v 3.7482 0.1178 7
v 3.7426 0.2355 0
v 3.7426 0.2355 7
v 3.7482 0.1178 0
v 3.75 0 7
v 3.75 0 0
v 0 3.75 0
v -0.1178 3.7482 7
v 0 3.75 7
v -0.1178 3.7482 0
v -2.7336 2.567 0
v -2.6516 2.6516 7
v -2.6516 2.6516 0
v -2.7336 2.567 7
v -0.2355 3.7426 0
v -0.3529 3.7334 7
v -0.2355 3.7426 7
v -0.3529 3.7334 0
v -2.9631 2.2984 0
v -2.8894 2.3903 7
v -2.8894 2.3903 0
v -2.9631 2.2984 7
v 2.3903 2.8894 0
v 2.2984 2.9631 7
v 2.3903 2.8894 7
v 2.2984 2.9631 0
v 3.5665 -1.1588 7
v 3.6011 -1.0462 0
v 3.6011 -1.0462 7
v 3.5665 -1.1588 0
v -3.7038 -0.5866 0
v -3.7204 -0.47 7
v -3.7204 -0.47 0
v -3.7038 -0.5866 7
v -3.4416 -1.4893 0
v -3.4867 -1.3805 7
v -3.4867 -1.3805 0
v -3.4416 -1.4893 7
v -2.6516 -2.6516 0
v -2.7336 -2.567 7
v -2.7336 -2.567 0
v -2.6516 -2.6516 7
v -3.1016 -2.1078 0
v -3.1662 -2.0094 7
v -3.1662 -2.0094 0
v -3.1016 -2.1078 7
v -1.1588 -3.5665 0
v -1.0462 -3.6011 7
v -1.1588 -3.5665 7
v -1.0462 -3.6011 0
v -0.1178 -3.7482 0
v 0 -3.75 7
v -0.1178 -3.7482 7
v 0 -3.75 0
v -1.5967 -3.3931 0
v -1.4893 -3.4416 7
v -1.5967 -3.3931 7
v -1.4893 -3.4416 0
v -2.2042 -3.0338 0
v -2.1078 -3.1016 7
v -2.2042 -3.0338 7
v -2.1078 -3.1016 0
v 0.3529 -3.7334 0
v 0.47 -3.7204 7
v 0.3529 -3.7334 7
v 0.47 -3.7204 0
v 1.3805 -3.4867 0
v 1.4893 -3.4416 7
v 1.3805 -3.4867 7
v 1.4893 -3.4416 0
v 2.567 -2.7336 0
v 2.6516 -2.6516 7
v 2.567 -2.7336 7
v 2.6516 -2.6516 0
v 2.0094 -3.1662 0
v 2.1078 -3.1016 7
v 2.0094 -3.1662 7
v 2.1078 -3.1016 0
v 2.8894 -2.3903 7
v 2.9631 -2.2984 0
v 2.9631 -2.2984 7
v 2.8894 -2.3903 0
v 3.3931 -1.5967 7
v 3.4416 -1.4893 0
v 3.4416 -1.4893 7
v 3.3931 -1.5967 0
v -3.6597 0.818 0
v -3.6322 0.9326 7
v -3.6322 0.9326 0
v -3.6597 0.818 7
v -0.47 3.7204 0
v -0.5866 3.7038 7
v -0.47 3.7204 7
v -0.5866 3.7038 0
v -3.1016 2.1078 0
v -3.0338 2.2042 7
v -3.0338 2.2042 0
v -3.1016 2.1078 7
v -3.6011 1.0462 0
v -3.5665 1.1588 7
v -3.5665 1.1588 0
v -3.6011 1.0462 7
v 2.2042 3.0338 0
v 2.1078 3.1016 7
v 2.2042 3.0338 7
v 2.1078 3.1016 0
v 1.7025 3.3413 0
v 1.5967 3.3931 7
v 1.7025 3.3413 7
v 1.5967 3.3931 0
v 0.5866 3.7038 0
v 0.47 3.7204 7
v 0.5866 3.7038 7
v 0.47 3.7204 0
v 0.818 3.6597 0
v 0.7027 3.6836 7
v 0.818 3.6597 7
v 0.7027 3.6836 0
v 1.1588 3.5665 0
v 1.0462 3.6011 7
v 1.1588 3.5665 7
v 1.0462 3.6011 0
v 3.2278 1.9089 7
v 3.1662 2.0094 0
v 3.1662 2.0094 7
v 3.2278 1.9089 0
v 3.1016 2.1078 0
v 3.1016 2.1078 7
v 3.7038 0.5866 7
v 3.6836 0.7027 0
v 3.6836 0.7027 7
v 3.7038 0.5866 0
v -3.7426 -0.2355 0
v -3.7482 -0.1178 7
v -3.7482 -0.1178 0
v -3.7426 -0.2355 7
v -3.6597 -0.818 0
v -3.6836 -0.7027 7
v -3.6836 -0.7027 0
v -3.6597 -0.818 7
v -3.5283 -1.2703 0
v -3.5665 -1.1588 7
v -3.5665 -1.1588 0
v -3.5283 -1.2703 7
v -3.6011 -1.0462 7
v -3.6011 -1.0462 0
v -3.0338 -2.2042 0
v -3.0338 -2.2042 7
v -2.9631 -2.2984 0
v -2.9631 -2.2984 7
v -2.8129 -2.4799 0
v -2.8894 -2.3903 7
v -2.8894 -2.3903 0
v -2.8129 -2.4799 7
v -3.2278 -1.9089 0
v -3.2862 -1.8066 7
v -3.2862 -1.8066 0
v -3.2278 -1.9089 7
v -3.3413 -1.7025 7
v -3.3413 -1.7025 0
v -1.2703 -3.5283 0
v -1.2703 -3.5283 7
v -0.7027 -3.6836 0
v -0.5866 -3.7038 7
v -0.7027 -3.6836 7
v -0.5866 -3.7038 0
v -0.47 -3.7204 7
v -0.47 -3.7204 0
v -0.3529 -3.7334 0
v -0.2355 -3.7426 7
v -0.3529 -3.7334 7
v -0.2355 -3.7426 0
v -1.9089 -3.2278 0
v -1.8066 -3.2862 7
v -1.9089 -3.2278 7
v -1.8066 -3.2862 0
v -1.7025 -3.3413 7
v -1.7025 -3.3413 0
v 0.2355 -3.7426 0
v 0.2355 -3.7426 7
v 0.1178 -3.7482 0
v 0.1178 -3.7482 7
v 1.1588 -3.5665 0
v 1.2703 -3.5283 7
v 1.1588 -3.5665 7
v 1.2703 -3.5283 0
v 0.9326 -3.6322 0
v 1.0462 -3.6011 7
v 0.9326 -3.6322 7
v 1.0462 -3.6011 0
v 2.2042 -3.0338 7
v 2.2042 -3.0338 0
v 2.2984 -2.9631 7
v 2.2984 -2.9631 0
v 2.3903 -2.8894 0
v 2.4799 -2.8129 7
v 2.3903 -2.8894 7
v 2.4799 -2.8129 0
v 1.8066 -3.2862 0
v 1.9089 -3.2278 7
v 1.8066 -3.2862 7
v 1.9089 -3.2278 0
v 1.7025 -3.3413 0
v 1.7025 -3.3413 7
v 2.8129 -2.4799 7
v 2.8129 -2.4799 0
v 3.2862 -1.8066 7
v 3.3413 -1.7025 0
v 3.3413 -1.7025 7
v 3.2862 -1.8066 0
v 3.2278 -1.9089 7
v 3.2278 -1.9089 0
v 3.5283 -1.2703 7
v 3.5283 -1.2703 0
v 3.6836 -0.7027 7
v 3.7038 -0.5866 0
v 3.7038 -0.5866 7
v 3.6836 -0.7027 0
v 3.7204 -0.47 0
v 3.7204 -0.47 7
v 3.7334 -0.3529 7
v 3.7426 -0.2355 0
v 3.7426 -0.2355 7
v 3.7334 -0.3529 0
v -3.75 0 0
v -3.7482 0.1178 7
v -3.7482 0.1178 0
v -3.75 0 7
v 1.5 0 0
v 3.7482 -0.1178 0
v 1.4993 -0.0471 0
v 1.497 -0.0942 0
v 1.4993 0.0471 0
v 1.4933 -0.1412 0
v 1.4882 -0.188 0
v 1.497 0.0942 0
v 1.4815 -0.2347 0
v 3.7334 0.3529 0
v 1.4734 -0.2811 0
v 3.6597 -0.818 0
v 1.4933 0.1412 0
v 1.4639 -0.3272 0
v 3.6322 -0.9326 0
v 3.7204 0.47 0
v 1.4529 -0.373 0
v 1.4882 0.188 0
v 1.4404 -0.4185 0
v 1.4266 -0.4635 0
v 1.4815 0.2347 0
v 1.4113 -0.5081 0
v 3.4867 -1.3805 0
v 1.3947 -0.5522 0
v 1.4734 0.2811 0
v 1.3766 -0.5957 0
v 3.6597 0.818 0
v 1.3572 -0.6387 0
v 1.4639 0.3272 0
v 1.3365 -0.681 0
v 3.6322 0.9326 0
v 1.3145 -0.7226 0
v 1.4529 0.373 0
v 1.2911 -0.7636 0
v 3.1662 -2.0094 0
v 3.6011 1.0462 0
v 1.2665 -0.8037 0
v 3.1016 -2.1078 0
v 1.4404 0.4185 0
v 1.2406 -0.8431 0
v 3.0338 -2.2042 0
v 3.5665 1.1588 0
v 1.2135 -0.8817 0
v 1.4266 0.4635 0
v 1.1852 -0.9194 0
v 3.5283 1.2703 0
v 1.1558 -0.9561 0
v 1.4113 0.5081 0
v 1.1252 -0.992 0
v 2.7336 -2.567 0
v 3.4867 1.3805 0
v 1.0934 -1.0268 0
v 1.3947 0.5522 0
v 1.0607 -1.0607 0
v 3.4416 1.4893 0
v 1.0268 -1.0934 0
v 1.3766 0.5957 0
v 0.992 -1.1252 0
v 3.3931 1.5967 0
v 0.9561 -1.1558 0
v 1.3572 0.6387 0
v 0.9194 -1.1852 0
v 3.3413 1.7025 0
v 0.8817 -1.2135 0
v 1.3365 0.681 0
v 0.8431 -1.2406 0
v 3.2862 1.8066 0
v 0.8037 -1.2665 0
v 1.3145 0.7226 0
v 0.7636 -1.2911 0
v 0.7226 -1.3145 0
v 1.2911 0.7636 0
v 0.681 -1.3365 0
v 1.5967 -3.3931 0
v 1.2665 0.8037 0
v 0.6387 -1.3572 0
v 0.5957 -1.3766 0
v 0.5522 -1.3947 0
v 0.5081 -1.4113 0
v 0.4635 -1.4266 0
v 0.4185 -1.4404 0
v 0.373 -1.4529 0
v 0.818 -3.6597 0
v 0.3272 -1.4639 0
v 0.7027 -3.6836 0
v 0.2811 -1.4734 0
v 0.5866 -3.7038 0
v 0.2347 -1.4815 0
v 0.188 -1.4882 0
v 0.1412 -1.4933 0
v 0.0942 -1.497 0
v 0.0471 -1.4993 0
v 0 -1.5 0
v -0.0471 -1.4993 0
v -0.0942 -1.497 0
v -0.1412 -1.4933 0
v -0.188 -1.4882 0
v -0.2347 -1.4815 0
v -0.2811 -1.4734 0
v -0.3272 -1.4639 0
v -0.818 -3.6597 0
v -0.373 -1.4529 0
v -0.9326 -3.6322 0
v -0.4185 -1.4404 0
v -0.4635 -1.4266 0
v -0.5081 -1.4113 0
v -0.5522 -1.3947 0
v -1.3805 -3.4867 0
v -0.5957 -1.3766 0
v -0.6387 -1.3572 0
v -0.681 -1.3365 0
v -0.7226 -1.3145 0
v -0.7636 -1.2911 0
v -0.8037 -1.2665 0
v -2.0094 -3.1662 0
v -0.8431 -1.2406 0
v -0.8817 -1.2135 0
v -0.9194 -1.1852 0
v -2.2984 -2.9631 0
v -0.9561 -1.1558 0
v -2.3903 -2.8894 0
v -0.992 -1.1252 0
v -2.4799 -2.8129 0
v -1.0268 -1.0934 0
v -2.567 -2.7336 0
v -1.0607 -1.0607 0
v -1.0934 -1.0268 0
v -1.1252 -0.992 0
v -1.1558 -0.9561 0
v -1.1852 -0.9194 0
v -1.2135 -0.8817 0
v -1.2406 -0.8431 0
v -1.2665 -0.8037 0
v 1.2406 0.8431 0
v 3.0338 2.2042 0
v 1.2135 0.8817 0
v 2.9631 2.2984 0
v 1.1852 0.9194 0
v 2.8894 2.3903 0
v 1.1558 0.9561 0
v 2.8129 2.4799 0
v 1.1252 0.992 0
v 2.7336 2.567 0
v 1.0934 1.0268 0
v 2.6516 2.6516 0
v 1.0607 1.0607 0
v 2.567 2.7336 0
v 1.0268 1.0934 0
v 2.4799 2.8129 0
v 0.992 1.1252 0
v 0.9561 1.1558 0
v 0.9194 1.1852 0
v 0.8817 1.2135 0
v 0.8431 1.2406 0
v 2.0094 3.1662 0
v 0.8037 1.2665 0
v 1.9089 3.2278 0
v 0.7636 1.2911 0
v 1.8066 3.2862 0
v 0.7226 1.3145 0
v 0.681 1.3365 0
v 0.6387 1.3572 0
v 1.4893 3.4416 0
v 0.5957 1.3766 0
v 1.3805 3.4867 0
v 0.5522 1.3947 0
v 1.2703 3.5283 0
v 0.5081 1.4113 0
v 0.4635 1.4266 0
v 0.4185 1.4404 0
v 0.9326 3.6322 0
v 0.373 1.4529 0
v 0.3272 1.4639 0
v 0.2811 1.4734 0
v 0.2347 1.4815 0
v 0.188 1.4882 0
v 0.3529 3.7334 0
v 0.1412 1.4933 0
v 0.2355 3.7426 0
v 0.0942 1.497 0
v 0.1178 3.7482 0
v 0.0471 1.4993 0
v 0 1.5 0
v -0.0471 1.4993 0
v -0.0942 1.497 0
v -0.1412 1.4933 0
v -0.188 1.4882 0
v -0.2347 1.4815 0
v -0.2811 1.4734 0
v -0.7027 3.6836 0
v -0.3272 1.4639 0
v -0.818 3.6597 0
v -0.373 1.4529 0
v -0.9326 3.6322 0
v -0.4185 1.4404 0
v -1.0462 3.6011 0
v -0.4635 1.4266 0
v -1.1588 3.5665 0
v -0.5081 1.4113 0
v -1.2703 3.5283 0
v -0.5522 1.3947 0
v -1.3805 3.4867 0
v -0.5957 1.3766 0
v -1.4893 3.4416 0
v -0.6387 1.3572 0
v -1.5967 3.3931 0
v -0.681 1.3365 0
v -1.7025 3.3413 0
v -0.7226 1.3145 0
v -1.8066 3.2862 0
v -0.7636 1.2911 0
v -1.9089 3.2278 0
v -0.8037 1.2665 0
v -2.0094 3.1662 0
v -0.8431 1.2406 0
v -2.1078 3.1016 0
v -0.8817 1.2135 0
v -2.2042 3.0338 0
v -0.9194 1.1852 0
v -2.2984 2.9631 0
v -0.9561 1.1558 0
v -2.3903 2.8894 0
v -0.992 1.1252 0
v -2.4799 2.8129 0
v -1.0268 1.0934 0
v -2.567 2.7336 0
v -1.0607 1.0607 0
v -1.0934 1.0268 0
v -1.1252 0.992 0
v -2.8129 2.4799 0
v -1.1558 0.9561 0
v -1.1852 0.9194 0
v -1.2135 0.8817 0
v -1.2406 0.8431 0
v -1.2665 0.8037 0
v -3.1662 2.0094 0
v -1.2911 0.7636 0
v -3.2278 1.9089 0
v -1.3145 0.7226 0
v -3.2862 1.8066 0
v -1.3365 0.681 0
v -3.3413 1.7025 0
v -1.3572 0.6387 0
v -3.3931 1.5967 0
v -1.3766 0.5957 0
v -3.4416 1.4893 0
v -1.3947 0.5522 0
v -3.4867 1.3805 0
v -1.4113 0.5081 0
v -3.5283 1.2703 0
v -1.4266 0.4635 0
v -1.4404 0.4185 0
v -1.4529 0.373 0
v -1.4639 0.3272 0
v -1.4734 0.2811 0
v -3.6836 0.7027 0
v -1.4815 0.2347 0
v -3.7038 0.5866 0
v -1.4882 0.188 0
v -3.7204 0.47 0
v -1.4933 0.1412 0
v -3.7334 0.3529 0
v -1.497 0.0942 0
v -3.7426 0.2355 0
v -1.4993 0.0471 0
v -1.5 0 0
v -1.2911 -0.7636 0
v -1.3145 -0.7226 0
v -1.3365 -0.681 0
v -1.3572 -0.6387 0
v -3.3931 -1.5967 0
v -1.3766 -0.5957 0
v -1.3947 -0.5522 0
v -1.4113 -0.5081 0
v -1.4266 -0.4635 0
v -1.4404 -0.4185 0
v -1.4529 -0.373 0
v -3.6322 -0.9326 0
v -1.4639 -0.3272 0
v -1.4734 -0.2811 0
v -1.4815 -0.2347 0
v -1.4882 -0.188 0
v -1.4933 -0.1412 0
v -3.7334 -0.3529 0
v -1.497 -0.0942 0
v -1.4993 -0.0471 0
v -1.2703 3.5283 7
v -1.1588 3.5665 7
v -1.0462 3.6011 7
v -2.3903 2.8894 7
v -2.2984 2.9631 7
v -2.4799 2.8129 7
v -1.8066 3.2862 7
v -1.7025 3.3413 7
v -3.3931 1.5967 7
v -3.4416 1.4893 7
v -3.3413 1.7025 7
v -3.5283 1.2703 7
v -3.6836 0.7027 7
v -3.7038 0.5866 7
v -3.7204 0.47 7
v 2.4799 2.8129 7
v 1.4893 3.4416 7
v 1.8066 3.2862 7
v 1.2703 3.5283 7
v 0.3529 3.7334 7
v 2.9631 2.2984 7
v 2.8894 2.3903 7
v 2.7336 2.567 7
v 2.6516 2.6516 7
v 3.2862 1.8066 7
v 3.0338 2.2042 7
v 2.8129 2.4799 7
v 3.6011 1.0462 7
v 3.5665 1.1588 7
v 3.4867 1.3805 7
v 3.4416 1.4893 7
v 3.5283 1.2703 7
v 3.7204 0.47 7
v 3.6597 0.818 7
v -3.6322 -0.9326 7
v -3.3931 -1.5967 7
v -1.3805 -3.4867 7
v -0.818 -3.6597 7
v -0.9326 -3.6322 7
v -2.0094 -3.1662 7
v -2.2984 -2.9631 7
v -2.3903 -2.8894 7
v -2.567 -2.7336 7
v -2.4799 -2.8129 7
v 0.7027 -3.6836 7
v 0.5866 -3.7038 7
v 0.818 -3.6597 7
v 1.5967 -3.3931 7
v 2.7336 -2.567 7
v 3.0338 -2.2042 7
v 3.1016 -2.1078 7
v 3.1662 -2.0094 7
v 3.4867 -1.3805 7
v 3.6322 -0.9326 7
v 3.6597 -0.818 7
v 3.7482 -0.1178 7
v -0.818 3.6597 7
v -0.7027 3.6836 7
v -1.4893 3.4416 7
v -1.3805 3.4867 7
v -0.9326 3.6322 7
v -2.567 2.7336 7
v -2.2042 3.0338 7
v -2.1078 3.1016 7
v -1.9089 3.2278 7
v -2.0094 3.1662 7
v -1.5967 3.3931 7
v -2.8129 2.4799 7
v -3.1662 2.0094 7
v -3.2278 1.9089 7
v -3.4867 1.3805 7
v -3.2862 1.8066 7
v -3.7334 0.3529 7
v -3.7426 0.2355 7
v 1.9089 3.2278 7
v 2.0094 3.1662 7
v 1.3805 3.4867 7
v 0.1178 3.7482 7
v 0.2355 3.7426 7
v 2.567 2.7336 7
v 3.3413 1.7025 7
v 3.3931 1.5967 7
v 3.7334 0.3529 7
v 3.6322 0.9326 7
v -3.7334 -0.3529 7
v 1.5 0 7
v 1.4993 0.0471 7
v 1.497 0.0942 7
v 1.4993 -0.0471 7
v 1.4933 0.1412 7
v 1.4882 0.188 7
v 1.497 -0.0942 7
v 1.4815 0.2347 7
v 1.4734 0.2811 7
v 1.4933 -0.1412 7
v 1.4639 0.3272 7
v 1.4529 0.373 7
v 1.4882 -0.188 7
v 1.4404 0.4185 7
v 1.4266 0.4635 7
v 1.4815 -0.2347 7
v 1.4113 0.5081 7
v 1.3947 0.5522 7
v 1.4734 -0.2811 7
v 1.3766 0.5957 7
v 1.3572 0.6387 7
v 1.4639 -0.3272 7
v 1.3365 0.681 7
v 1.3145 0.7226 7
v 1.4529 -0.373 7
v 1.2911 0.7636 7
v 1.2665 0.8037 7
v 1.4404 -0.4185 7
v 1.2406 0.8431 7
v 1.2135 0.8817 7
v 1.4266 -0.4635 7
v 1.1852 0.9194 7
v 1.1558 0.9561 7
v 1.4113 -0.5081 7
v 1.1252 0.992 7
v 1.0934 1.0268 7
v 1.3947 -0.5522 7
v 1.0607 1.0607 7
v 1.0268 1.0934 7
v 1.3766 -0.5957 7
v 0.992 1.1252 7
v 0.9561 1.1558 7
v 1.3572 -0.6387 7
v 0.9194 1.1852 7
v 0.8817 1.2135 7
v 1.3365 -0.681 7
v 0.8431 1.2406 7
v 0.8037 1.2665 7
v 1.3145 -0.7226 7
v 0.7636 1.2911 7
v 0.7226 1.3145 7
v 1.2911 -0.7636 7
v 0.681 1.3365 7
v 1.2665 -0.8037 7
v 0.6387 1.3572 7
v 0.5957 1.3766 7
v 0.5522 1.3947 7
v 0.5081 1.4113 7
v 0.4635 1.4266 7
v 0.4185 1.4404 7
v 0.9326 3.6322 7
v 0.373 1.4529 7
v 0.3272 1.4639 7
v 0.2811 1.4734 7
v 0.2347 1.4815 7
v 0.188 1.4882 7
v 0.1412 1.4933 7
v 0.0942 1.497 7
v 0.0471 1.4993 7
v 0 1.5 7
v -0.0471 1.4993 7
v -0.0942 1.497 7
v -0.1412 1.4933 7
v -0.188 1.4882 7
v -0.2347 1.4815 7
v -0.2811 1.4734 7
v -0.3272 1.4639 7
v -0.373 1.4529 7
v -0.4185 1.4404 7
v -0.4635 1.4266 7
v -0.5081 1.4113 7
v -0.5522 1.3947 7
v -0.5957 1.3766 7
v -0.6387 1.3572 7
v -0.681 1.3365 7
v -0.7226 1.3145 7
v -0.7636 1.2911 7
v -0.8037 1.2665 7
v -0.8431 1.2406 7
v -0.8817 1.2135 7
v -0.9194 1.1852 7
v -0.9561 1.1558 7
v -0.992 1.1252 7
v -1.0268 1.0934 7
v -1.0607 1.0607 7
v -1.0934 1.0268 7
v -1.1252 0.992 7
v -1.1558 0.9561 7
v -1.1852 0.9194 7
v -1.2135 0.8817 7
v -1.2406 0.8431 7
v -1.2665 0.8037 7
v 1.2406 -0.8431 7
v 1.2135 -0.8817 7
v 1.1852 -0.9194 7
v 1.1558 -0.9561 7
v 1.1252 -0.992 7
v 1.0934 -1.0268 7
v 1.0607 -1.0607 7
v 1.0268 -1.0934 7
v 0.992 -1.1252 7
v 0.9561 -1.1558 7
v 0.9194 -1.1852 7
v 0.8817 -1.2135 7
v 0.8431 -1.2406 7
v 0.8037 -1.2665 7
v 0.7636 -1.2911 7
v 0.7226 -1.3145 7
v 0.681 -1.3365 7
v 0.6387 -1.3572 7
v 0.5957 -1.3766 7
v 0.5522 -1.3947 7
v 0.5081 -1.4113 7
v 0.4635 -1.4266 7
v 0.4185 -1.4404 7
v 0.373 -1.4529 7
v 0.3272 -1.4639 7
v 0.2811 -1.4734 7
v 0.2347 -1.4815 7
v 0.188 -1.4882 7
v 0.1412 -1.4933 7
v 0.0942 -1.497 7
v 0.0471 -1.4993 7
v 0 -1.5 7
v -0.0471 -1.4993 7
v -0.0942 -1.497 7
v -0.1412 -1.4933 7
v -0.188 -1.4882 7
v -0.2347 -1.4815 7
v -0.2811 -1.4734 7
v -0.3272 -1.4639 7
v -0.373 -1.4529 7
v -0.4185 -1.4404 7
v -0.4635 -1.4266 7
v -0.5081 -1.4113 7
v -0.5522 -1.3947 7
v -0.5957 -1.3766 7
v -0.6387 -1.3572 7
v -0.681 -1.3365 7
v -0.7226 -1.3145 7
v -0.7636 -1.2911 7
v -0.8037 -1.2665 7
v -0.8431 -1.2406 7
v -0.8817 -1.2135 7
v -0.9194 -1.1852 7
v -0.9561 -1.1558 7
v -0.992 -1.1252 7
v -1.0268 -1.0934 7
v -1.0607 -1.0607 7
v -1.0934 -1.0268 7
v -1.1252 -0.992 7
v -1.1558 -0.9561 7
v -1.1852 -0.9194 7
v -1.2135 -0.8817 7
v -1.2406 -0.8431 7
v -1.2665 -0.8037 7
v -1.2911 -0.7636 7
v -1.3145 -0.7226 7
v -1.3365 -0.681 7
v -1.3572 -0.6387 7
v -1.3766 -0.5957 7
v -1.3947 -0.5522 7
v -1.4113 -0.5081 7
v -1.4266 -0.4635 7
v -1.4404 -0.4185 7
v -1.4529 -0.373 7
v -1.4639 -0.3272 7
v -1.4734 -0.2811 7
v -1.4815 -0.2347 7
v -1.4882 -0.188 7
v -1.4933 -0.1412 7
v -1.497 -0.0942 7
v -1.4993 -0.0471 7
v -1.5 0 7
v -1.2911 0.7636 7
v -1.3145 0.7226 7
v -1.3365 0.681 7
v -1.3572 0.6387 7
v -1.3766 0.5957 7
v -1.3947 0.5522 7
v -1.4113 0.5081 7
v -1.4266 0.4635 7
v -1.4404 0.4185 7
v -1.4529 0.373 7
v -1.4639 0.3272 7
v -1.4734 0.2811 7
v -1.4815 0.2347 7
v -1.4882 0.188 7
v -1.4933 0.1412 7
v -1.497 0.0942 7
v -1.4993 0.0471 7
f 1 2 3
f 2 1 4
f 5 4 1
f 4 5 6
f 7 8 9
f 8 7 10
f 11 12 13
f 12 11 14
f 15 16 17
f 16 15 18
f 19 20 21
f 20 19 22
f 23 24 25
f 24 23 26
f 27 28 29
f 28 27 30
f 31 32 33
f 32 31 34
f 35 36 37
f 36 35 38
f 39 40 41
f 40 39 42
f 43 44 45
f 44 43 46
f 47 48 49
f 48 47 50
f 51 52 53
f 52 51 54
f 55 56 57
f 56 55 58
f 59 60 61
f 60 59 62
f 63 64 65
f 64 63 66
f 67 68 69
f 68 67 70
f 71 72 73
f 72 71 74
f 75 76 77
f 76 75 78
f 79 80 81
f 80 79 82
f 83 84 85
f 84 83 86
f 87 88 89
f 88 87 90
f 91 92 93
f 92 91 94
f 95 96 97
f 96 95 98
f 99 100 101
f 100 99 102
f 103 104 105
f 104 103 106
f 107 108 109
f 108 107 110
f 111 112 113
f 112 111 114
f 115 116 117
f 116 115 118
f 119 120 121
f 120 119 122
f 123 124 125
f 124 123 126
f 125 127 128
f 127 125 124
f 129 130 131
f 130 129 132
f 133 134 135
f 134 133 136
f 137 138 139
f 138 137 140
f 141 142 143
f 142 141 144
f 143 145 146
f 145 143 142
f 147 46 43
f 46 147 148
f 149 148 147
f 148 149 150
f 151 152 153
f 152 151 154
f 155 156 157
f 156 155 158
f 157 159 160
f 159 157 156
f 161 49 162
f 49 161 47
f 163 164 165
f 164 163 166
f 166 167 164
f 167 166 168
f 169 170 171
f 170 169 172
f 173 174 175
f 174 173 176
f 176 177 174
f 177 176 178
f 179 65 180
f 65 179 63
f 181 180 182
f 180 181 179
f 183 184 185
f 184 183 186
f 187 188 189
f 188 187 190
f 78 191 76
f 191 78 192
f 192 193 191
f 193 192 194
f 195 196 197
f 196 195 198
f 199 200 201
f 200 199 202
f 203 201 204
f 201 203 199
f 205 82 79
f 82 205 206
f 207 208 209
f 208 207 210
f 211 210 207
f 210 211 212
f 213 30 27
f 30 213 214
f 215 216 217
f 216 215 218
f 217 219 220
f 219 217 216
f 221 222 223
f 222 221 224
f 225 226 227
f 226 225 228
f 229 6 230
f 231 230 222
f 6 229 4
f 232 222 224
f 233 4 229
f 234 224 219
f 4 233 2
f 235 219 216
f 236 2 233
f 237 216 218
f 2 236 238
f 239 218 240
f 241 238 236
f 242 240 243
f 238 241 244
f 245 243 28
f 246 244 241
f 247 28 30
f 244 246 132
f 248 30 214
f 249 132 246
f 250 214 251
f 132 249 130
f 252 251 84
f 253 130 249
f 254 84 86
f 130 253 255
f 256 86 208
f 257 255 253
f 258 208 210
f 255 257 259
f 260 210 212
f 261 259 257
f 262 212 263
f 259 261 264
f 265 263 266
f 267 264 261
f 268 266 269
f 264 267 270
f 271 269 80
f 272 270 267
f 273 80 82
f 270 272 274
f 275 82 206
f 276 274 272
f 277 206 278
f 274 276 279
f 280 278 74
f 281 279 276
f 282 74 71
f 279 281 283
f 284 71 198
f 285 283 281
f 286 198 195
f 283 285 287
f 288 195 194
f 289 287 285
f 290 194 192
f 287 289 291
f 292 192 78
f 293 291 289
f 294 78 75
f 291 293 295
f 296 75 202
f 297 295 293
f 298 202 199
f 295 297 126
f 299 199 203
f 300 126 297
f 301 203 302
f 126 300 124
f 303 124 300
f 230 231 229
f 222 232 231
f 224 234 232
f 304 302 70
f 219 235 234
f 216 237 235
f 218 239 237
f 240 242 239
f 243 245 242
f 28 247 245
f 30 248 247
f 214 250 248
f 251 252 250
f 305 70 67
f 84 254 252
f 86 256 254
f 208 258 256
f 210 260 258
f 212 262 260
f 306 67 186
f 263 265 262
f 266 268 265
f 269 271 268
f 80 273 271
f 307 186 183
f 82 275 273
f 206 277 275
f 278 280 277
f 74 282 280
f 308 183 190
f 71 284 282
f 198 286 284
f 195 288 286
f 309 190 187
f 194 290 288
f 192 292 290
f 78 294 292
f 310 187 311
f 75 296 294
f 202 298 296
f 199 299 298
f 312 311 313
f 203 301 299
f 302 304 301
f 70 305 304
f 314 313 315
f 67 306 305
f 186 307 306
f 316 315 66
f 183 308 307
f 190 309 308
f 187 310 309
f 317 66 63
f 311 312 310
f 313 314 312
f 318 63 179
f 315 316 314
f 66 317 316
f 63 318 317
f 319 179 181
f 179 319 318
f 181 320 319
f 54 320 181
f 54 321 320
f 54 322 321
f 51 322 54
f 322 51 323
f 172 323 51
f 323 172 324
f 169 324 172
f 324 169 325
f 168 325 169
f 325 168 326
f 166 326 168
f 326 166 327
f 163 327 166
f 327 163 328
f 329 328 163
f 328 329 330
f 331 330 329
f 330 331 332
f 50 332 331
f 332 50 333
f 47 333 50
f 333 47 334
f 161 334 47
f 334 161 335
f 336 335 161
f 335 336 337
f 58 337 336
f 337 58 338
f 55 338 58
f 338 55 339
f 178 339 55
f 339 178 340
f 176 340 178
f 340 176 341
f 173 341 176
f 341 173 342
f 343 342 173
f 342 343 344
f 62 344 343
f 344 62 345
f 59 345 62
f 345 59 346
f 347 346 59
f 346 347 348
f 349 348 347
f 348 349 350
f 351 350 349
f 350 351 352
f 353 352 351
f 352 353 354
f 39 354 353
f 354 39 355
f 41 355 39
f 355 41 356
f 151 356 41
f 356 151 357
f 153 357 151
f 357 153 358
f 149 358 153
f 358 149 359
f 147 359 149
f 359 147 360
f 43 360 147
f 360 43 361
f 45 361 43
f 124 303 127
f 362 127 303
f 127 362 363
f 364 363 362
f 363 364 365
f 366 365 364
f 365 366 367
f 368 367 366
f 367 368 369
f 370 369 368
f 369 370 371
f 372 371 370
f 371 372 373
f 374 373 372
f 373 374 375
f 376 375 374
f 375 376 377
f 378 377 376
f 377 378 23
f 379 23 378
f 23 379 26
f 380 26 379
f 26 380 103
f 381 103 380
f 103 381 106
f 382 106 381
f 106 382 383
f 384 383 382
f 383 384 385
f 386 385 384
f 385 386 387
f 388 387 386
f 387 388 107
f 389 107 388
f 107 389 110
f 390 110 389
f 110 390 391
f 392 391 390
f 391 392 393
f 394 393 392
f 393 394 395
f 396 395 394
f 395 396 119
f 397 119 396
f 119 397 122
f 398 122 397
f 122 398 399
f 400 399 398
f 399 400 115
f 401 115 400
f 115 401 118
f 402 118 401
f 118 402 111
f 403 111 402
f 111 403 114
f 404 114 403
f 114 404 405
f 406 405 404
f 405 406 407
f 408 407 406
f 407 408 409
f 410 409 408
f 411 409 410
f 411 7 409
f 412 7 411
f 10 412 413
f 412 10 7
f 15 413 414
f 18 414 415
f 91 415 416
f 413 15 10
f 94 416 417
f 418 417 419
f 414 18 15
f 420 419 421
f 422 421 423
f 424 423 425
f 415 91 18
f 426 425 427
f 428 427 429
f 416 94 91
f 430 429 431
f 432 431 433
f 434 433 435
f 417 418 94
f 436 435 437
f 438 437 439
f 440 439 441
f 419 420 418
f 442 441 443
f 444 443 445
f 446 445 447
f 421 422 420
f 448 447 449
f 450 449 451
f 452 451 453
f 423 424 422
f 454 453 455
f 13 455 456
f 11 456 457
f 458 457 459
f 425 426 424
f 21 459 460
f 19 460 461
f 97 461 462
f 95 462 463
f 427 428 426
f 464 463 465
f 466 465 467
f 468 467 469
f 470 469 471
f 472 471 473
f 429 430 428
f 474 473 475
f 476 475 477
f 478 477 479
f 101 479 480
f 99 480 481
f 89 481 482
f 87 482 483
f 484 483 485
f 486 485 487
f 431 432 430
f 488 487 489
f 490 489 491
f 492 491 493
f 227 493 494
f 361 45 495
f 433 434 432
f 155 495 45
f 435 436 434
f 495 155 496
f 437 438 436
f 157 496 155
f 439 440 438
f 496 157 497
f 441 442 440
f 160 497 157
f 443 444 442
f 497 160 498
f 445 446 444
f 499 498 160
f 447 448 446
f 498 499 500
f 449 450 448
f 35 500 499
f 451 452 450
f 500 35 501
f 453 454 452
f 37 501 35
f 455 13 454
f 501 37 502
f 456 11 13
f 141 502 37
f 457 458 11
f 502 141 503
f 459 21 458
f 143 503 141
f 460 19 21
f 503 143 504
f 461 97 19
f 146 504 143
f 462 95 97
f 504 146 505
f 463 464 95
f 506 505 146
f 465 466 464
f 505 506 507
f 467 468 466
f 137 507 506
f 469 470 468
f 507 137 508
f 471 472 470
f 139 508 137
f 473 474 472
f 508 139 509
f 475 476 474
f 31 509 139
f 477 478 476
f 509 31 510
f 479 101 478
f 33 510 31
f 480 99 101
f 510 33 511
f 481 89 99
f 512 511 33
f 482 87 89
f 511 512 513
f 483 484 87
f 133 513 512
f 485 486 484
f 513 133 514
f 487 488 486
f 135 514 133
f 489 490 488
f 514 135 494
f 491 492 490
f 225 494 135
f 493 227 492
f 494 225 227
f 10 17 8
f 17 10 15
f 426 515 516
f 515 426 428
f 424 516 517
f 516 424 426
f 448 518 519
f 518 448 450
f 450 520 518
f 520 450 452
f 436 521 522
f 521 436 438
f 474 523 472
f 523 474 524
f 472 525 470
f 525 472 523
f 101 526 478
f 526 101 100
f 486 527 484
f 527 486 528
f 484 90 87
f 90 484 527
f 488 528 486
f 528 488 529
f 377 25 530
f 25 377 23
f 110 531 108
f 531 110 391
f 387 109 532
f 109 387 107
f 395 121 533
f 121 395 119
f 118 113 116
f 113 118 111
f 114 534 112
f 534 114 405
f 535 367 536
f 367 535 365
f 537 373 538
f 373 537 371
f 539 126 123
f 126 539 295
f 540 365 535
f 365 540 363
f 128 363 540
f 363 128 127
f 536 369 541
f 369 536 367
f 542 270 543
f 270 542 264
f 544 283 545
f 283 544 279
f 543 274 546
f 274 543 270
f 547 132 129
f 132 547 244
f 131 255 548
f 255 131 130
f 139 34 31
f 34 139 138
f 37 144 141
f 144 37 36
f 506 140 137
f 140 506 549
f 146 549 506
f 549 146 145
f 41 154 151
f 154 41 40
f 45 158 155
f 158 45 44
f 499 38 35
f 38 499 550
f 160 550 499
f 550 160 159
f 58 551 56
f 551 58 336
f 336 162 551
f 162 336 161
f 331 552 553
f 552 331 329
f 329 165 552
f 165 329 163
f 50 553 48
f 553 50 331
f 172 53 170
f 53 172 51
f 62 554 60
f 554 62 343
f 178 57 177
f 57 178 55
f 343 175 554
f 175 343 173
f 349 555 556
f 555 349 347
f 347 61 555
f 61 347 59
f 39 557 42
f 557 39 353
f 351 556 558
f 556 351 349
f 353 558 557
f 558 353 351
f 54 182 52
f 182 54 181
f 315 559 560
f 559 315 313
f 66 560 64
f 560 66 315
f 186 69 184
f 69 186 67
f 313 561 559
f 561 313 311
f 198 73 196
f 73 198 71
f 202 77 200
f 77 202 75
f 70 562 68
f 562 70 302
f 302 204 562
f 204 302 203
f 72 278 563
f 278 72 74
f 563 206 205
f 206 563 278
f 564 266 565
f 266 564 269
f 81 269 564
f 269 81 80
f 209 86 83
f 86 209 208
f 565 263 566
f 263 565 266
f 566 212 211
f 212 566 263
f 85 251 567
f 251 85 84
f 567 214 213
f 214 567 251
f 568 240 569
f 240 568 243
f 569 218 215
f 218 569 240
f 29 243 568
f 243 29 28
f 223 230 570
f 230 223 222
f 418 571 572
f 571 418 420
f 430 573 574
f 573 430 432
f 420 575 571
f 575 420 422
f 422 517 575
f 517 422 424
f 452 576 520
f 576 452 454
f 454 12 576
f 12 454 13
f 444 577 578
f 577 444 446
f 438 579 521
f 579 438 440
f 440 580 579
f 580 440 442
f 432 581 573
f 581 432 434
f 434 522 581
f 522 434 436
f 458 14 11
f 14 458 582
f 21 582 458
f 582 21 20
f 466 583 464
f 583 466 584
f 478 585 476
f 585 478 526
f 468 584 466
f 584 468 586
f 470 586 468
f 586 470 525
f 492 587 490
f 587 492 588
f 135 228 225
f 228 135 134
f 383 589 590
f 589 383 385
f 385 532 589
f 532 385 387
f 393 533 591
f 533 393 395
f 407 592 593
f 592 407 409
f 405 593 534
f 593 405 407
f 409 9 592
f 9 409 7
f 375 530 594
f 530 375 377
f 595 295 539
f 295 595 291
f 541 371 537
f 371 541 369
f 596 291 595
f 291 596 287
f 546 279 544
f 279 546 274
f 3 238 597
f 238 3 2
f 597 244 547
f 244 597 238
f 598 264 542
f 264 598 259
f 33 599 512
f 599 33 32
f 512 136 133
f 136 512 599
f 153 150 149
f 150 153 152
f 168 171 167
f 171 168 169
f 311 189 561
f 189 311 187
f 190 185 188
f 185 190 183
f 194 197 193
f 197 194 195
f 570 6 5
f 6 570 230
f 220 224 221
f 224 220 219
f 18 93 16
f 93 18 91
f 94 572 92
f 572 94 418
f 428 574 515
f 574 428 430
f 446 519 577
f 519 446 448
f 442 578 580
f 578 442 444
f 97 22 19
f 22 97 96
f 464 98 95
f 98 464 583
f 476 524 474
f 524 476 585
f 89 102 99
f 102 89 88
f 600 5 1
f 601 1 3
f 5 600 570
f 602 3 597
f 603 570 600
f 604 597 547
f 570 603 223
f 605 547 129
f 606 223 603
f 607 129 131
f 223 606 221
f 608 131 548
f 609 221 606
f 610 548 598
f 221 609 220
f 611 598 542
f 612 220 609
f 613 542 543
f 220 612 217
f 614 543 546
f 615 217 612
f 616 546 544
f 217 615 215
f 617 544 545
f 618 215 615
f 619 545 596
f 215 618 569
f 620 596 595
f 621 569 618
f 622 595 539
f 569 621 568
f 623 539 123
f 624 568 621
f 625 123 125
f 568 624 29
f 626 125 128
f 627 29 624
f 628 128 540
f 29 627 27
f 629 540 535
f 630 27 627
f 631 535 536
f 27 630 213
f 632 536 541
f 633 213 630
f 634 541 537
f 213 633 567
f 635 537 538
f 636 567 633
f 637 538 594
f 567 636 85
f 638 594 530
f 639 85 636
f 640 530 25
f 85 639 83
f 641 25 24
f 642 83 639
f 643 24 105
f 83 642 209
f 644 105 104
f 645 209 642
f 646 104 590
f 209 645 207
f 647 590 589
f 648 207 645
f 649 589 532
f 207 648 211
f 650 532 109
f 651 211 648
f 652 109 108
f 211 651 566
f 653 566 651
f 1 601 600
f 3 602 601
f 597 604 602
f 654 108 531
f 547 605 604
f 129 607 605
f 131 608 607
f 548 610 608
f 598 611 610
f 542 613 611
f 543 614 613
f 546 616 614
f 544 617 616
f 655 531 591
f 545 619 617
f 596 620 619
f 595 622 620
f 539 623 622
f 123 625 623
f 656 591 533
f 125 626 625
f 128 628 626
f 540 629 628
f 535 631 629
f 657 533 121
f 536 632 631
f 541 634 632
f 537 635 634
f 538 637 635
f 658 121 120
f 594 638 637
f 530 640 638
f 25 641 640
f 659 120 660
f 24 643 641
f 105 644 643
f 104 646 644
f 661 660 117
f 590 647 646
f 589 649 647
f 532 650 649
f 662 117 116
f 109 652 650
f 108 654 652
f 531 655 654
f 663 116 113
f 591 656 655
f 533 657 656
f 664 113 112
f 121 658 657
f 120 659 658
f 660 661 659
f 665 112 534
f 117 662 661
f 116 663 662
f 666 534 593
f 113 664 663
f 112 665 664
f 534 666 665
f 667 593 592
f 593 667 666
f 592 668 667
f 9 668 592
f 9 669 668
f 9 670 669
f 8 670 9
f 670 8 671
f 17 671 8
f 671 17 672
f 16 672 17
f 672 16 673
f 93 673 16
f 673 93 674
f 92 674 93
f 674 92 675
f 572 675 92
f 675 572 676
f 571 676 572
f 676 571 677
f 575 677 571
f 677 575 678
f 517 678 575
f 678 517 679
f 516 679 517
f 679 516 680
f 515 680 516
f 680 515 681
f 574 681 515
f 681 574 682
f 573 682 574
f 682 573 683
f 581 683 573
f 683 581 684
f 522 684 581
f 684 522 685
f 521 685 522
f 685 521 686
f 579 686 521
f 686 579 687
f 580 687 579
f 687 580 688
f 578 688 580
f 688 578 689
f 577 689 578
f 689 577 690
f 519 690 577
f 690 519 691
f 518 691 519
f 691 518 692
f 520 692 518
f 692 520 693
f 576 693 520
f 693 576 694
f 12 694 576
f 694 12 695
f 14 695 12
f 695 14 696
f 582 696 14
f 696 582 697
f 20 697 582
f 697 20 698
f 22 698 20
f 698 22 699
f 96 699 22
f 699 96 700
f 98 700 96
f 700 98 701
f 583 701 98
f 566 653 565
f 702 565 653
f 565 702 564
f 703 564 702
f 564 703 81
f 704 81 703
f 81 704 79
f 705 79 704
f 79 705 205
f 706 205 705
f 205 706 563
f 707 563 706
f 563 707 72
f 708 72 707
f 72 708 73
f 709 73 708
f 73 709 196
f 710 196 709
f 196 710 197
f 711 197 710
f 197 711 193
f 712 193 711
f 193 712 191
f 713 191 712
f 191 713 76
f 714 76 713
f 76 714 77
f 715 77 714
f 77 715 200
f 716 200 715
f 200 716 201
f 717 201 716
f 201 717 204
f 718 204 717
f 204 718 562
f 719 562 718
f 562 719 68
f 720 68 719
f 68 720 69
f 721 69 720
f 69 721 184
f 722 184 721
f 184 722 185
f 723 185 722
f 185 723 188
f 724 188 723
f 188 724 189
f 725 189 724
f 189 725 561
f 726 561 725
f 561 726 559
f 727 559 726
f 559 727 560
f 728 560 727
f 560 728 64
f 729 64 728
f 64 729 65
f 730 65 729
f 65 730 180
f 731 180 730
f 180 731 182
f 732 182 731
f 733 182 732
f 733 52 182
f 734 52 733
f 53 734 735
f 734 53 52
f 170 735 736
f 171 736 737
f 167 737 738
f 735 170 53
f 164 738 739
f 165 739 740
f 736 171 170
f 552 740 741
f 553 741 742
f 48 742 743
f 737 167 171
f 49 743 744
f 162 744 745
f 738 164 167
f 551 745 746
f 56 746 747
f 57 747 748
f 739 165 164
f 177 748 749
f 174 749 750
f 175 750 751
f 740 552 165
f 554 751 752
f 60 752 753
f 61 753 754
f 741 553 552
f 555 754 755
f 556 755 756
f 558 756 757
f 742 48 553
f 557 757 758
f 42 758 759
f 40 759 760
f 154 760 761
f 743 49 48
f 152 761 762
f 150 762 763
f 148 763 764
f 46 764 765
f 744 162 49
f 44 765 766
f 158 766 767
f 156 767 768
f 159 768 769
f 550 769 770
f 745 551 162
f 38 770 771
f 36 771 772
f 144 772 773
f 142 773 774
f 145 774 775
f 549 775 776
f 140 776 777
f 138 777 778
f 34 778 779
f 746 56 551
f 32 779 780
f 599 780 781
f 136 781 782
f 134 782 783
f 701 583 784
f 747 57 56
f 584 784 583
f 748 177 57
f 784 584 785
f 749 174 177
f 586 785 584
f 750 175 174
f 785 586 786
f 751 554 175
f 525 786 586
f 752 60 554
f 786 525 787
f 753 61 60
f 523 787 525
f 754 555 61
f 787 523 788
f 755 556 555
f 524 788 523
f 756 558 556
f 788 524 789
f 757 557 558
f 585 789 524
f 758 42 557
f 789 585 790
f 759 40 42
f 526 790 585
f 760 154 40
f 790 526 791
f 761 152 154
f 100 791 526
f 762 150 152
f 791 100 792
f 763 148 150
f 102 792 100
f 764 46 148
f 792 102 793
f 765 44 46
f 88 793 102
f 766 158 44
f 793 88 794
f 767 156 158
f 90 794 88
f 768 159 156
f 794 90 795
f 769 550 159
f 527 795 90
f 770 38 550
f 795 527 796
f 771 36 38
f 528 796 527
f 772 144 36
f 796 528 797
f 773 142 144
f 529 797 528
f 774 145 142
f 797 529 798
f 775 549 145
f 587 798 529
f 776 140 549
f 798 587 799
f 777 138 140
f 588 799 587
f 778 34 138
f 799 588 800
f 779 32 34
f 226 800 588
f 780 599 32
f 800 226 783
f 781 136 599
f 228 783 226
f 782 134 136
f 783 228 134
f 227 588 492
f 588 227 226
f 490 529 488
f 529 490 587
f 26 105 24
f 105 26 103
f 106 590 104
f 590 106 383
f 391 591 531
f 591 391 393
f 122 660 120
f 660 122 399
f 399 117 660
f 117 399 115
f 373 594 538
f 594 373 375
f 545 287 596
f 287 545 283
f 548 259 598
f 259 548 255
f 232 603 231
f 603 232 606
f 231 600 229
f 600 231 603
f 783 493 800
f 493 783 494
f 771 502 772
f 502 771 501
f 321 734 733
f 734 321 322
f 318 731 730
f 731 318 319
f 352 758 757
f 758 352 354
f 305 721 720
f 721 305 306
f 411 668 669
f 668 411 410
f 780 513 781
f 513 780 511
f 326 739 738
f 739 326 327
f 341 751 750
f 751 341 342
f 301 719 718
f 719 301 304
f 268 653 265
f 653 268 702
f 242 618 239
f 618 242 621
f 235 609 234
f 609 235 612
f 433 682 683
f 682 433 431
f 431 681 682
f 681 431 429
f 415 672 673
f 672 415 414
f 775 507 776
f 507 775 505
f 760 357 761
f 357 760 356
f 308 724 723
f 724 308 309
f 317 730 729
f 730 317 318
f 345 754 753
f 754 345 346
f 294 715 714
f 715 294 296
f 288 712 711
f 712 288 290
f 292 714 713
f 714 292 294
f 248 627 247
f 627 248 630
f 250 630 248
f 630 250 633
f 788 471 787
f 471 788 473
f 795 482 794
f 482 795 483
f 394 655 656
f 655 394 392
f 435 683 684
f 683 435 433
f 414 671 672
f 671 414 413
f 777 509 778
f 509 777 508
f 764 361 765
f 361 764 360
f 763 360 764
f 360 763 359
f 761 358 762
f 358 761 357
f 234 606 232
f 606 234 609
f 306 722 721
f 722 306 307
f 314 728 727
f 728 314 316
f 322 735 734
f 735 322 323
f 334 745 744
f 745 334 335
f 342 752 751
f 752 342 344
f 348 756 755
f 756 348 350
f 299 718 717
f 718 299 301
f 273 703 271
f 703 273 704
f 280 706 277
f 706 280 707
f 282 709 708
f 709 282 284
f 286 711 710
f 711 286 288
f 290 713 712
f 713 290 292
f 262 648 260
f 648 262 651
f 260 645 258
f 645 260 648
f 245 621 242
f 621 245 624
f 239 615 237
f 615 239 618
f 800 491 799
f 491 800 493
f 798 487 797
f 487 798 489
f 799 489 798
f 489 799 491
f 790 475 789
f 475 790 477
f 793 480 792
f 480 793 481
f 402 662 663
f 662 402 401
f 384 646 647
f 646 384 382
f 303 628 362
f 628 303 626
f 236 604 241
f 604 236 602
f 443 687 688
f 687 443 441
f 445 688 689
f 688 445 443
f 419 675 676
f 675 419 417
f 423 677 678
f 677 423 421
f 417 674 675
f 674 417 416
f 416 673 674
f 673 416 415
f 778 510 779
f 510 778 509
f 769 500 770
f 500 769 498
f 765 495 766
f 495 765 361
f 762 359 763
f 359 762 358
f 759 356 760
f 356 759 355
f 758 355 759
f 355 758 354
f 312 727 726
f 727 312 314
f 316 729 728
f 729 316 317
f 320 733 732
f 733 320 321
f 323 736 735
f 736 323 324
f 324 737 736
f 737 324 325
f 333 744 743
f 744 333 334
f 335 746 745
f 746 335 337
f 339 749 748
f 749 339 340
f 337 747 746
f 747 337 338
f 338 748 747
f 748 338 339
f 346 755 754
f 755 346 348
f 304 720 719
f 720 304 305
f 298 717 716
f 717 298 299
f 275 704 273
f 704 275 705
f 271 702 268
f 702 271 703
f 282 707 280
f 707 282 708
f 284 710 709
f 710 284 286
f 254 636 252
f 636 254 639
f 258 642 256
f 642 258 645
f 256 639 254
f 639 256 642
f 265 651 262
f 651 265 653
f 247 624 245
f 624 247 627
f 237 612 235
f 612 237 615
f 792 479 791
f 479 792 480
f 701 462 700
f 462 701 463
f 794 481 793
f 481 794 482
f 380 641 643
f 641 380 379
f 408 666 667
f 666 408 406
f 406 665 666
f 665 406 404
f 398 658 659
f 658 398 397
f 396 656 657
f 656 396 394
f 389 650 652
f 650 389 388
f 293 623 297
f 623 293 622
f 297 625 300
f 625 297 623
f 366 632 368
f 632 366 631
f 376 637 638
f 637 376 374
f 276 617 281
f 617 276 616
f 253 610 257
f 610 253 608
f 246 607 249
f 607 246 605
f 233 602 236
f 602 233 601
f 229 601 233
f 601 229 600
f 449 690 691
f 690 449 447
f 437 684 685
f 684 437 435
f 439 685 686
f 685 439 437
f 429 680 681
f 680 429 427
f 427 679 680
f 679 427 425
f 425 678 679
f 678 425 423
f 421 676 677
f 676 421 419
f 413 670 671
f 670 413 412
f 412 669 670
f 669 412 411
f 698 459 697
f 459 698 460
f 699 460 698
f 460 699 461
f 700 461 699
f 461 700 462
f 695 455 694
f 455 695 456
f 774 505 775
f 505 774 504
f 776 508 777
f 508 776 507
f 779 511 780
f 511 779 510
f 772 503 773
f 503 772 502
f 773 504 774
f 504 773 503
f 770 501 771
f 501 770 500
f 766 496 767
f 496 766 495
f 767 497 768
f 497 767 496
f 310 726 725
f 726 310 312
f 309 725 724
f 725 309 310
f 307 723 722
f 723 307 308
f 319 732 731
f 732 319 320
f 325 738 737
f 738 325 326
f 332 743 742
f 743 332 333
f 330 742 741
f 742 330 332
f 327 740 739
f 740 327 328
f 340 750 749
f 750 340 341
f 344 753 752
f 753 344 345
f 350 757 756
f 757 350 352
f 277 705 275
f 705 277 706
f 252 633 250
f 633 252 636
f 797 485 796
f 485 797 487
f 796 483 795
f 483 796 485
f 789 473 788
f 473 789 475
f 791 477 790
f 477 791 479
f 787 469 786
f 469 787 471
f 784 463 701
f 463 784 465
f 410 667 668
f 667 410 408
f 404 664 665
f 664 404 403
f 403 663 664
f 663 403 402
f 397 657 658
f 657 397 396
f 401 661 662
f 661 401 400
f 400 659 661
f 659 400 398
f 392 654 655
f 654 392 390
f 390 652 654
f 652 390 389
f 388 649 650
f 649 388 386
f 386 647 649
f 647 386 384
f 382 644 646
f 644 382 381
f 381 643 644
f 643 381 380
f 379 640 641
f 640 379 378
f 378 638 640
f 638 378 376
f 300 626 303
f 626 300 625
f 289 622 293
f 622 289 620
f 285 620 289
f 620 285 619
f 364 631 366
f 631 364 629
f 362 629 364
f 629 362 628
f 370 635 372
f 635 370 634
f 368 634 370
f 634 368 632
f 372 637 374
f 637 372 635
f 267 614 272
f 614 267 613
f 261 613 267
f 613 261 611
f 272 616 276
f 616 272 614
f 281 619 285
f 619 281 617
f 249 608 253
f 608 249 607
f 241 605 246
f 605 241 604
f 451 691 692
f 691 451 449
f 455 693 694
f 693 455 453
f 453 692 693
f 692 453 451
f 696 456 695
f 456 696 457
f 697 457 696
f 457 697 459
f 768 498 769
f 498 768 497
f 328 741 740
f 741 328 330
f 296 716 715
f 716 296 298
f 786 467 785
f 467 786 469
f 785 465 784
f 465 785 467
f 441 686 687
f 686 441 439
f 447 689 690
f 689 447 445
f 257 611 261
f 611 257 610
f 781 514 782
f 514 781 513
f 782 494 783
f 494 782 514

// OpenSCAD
pi_mounting_hole_diameter = 3;
pi_standoff_height = 7;
pi_standoff_diameter = 7.5;

$fn = 200;

difference() {

  linear_extrude(height = pi_standoff_height) {
    circle(r=pi_standoff_diameter/2);
  }


  linear_extrude(height = pi_standoff_height) {
    circle(r=pi_mounting_hole_diameter/2);
  }

}
